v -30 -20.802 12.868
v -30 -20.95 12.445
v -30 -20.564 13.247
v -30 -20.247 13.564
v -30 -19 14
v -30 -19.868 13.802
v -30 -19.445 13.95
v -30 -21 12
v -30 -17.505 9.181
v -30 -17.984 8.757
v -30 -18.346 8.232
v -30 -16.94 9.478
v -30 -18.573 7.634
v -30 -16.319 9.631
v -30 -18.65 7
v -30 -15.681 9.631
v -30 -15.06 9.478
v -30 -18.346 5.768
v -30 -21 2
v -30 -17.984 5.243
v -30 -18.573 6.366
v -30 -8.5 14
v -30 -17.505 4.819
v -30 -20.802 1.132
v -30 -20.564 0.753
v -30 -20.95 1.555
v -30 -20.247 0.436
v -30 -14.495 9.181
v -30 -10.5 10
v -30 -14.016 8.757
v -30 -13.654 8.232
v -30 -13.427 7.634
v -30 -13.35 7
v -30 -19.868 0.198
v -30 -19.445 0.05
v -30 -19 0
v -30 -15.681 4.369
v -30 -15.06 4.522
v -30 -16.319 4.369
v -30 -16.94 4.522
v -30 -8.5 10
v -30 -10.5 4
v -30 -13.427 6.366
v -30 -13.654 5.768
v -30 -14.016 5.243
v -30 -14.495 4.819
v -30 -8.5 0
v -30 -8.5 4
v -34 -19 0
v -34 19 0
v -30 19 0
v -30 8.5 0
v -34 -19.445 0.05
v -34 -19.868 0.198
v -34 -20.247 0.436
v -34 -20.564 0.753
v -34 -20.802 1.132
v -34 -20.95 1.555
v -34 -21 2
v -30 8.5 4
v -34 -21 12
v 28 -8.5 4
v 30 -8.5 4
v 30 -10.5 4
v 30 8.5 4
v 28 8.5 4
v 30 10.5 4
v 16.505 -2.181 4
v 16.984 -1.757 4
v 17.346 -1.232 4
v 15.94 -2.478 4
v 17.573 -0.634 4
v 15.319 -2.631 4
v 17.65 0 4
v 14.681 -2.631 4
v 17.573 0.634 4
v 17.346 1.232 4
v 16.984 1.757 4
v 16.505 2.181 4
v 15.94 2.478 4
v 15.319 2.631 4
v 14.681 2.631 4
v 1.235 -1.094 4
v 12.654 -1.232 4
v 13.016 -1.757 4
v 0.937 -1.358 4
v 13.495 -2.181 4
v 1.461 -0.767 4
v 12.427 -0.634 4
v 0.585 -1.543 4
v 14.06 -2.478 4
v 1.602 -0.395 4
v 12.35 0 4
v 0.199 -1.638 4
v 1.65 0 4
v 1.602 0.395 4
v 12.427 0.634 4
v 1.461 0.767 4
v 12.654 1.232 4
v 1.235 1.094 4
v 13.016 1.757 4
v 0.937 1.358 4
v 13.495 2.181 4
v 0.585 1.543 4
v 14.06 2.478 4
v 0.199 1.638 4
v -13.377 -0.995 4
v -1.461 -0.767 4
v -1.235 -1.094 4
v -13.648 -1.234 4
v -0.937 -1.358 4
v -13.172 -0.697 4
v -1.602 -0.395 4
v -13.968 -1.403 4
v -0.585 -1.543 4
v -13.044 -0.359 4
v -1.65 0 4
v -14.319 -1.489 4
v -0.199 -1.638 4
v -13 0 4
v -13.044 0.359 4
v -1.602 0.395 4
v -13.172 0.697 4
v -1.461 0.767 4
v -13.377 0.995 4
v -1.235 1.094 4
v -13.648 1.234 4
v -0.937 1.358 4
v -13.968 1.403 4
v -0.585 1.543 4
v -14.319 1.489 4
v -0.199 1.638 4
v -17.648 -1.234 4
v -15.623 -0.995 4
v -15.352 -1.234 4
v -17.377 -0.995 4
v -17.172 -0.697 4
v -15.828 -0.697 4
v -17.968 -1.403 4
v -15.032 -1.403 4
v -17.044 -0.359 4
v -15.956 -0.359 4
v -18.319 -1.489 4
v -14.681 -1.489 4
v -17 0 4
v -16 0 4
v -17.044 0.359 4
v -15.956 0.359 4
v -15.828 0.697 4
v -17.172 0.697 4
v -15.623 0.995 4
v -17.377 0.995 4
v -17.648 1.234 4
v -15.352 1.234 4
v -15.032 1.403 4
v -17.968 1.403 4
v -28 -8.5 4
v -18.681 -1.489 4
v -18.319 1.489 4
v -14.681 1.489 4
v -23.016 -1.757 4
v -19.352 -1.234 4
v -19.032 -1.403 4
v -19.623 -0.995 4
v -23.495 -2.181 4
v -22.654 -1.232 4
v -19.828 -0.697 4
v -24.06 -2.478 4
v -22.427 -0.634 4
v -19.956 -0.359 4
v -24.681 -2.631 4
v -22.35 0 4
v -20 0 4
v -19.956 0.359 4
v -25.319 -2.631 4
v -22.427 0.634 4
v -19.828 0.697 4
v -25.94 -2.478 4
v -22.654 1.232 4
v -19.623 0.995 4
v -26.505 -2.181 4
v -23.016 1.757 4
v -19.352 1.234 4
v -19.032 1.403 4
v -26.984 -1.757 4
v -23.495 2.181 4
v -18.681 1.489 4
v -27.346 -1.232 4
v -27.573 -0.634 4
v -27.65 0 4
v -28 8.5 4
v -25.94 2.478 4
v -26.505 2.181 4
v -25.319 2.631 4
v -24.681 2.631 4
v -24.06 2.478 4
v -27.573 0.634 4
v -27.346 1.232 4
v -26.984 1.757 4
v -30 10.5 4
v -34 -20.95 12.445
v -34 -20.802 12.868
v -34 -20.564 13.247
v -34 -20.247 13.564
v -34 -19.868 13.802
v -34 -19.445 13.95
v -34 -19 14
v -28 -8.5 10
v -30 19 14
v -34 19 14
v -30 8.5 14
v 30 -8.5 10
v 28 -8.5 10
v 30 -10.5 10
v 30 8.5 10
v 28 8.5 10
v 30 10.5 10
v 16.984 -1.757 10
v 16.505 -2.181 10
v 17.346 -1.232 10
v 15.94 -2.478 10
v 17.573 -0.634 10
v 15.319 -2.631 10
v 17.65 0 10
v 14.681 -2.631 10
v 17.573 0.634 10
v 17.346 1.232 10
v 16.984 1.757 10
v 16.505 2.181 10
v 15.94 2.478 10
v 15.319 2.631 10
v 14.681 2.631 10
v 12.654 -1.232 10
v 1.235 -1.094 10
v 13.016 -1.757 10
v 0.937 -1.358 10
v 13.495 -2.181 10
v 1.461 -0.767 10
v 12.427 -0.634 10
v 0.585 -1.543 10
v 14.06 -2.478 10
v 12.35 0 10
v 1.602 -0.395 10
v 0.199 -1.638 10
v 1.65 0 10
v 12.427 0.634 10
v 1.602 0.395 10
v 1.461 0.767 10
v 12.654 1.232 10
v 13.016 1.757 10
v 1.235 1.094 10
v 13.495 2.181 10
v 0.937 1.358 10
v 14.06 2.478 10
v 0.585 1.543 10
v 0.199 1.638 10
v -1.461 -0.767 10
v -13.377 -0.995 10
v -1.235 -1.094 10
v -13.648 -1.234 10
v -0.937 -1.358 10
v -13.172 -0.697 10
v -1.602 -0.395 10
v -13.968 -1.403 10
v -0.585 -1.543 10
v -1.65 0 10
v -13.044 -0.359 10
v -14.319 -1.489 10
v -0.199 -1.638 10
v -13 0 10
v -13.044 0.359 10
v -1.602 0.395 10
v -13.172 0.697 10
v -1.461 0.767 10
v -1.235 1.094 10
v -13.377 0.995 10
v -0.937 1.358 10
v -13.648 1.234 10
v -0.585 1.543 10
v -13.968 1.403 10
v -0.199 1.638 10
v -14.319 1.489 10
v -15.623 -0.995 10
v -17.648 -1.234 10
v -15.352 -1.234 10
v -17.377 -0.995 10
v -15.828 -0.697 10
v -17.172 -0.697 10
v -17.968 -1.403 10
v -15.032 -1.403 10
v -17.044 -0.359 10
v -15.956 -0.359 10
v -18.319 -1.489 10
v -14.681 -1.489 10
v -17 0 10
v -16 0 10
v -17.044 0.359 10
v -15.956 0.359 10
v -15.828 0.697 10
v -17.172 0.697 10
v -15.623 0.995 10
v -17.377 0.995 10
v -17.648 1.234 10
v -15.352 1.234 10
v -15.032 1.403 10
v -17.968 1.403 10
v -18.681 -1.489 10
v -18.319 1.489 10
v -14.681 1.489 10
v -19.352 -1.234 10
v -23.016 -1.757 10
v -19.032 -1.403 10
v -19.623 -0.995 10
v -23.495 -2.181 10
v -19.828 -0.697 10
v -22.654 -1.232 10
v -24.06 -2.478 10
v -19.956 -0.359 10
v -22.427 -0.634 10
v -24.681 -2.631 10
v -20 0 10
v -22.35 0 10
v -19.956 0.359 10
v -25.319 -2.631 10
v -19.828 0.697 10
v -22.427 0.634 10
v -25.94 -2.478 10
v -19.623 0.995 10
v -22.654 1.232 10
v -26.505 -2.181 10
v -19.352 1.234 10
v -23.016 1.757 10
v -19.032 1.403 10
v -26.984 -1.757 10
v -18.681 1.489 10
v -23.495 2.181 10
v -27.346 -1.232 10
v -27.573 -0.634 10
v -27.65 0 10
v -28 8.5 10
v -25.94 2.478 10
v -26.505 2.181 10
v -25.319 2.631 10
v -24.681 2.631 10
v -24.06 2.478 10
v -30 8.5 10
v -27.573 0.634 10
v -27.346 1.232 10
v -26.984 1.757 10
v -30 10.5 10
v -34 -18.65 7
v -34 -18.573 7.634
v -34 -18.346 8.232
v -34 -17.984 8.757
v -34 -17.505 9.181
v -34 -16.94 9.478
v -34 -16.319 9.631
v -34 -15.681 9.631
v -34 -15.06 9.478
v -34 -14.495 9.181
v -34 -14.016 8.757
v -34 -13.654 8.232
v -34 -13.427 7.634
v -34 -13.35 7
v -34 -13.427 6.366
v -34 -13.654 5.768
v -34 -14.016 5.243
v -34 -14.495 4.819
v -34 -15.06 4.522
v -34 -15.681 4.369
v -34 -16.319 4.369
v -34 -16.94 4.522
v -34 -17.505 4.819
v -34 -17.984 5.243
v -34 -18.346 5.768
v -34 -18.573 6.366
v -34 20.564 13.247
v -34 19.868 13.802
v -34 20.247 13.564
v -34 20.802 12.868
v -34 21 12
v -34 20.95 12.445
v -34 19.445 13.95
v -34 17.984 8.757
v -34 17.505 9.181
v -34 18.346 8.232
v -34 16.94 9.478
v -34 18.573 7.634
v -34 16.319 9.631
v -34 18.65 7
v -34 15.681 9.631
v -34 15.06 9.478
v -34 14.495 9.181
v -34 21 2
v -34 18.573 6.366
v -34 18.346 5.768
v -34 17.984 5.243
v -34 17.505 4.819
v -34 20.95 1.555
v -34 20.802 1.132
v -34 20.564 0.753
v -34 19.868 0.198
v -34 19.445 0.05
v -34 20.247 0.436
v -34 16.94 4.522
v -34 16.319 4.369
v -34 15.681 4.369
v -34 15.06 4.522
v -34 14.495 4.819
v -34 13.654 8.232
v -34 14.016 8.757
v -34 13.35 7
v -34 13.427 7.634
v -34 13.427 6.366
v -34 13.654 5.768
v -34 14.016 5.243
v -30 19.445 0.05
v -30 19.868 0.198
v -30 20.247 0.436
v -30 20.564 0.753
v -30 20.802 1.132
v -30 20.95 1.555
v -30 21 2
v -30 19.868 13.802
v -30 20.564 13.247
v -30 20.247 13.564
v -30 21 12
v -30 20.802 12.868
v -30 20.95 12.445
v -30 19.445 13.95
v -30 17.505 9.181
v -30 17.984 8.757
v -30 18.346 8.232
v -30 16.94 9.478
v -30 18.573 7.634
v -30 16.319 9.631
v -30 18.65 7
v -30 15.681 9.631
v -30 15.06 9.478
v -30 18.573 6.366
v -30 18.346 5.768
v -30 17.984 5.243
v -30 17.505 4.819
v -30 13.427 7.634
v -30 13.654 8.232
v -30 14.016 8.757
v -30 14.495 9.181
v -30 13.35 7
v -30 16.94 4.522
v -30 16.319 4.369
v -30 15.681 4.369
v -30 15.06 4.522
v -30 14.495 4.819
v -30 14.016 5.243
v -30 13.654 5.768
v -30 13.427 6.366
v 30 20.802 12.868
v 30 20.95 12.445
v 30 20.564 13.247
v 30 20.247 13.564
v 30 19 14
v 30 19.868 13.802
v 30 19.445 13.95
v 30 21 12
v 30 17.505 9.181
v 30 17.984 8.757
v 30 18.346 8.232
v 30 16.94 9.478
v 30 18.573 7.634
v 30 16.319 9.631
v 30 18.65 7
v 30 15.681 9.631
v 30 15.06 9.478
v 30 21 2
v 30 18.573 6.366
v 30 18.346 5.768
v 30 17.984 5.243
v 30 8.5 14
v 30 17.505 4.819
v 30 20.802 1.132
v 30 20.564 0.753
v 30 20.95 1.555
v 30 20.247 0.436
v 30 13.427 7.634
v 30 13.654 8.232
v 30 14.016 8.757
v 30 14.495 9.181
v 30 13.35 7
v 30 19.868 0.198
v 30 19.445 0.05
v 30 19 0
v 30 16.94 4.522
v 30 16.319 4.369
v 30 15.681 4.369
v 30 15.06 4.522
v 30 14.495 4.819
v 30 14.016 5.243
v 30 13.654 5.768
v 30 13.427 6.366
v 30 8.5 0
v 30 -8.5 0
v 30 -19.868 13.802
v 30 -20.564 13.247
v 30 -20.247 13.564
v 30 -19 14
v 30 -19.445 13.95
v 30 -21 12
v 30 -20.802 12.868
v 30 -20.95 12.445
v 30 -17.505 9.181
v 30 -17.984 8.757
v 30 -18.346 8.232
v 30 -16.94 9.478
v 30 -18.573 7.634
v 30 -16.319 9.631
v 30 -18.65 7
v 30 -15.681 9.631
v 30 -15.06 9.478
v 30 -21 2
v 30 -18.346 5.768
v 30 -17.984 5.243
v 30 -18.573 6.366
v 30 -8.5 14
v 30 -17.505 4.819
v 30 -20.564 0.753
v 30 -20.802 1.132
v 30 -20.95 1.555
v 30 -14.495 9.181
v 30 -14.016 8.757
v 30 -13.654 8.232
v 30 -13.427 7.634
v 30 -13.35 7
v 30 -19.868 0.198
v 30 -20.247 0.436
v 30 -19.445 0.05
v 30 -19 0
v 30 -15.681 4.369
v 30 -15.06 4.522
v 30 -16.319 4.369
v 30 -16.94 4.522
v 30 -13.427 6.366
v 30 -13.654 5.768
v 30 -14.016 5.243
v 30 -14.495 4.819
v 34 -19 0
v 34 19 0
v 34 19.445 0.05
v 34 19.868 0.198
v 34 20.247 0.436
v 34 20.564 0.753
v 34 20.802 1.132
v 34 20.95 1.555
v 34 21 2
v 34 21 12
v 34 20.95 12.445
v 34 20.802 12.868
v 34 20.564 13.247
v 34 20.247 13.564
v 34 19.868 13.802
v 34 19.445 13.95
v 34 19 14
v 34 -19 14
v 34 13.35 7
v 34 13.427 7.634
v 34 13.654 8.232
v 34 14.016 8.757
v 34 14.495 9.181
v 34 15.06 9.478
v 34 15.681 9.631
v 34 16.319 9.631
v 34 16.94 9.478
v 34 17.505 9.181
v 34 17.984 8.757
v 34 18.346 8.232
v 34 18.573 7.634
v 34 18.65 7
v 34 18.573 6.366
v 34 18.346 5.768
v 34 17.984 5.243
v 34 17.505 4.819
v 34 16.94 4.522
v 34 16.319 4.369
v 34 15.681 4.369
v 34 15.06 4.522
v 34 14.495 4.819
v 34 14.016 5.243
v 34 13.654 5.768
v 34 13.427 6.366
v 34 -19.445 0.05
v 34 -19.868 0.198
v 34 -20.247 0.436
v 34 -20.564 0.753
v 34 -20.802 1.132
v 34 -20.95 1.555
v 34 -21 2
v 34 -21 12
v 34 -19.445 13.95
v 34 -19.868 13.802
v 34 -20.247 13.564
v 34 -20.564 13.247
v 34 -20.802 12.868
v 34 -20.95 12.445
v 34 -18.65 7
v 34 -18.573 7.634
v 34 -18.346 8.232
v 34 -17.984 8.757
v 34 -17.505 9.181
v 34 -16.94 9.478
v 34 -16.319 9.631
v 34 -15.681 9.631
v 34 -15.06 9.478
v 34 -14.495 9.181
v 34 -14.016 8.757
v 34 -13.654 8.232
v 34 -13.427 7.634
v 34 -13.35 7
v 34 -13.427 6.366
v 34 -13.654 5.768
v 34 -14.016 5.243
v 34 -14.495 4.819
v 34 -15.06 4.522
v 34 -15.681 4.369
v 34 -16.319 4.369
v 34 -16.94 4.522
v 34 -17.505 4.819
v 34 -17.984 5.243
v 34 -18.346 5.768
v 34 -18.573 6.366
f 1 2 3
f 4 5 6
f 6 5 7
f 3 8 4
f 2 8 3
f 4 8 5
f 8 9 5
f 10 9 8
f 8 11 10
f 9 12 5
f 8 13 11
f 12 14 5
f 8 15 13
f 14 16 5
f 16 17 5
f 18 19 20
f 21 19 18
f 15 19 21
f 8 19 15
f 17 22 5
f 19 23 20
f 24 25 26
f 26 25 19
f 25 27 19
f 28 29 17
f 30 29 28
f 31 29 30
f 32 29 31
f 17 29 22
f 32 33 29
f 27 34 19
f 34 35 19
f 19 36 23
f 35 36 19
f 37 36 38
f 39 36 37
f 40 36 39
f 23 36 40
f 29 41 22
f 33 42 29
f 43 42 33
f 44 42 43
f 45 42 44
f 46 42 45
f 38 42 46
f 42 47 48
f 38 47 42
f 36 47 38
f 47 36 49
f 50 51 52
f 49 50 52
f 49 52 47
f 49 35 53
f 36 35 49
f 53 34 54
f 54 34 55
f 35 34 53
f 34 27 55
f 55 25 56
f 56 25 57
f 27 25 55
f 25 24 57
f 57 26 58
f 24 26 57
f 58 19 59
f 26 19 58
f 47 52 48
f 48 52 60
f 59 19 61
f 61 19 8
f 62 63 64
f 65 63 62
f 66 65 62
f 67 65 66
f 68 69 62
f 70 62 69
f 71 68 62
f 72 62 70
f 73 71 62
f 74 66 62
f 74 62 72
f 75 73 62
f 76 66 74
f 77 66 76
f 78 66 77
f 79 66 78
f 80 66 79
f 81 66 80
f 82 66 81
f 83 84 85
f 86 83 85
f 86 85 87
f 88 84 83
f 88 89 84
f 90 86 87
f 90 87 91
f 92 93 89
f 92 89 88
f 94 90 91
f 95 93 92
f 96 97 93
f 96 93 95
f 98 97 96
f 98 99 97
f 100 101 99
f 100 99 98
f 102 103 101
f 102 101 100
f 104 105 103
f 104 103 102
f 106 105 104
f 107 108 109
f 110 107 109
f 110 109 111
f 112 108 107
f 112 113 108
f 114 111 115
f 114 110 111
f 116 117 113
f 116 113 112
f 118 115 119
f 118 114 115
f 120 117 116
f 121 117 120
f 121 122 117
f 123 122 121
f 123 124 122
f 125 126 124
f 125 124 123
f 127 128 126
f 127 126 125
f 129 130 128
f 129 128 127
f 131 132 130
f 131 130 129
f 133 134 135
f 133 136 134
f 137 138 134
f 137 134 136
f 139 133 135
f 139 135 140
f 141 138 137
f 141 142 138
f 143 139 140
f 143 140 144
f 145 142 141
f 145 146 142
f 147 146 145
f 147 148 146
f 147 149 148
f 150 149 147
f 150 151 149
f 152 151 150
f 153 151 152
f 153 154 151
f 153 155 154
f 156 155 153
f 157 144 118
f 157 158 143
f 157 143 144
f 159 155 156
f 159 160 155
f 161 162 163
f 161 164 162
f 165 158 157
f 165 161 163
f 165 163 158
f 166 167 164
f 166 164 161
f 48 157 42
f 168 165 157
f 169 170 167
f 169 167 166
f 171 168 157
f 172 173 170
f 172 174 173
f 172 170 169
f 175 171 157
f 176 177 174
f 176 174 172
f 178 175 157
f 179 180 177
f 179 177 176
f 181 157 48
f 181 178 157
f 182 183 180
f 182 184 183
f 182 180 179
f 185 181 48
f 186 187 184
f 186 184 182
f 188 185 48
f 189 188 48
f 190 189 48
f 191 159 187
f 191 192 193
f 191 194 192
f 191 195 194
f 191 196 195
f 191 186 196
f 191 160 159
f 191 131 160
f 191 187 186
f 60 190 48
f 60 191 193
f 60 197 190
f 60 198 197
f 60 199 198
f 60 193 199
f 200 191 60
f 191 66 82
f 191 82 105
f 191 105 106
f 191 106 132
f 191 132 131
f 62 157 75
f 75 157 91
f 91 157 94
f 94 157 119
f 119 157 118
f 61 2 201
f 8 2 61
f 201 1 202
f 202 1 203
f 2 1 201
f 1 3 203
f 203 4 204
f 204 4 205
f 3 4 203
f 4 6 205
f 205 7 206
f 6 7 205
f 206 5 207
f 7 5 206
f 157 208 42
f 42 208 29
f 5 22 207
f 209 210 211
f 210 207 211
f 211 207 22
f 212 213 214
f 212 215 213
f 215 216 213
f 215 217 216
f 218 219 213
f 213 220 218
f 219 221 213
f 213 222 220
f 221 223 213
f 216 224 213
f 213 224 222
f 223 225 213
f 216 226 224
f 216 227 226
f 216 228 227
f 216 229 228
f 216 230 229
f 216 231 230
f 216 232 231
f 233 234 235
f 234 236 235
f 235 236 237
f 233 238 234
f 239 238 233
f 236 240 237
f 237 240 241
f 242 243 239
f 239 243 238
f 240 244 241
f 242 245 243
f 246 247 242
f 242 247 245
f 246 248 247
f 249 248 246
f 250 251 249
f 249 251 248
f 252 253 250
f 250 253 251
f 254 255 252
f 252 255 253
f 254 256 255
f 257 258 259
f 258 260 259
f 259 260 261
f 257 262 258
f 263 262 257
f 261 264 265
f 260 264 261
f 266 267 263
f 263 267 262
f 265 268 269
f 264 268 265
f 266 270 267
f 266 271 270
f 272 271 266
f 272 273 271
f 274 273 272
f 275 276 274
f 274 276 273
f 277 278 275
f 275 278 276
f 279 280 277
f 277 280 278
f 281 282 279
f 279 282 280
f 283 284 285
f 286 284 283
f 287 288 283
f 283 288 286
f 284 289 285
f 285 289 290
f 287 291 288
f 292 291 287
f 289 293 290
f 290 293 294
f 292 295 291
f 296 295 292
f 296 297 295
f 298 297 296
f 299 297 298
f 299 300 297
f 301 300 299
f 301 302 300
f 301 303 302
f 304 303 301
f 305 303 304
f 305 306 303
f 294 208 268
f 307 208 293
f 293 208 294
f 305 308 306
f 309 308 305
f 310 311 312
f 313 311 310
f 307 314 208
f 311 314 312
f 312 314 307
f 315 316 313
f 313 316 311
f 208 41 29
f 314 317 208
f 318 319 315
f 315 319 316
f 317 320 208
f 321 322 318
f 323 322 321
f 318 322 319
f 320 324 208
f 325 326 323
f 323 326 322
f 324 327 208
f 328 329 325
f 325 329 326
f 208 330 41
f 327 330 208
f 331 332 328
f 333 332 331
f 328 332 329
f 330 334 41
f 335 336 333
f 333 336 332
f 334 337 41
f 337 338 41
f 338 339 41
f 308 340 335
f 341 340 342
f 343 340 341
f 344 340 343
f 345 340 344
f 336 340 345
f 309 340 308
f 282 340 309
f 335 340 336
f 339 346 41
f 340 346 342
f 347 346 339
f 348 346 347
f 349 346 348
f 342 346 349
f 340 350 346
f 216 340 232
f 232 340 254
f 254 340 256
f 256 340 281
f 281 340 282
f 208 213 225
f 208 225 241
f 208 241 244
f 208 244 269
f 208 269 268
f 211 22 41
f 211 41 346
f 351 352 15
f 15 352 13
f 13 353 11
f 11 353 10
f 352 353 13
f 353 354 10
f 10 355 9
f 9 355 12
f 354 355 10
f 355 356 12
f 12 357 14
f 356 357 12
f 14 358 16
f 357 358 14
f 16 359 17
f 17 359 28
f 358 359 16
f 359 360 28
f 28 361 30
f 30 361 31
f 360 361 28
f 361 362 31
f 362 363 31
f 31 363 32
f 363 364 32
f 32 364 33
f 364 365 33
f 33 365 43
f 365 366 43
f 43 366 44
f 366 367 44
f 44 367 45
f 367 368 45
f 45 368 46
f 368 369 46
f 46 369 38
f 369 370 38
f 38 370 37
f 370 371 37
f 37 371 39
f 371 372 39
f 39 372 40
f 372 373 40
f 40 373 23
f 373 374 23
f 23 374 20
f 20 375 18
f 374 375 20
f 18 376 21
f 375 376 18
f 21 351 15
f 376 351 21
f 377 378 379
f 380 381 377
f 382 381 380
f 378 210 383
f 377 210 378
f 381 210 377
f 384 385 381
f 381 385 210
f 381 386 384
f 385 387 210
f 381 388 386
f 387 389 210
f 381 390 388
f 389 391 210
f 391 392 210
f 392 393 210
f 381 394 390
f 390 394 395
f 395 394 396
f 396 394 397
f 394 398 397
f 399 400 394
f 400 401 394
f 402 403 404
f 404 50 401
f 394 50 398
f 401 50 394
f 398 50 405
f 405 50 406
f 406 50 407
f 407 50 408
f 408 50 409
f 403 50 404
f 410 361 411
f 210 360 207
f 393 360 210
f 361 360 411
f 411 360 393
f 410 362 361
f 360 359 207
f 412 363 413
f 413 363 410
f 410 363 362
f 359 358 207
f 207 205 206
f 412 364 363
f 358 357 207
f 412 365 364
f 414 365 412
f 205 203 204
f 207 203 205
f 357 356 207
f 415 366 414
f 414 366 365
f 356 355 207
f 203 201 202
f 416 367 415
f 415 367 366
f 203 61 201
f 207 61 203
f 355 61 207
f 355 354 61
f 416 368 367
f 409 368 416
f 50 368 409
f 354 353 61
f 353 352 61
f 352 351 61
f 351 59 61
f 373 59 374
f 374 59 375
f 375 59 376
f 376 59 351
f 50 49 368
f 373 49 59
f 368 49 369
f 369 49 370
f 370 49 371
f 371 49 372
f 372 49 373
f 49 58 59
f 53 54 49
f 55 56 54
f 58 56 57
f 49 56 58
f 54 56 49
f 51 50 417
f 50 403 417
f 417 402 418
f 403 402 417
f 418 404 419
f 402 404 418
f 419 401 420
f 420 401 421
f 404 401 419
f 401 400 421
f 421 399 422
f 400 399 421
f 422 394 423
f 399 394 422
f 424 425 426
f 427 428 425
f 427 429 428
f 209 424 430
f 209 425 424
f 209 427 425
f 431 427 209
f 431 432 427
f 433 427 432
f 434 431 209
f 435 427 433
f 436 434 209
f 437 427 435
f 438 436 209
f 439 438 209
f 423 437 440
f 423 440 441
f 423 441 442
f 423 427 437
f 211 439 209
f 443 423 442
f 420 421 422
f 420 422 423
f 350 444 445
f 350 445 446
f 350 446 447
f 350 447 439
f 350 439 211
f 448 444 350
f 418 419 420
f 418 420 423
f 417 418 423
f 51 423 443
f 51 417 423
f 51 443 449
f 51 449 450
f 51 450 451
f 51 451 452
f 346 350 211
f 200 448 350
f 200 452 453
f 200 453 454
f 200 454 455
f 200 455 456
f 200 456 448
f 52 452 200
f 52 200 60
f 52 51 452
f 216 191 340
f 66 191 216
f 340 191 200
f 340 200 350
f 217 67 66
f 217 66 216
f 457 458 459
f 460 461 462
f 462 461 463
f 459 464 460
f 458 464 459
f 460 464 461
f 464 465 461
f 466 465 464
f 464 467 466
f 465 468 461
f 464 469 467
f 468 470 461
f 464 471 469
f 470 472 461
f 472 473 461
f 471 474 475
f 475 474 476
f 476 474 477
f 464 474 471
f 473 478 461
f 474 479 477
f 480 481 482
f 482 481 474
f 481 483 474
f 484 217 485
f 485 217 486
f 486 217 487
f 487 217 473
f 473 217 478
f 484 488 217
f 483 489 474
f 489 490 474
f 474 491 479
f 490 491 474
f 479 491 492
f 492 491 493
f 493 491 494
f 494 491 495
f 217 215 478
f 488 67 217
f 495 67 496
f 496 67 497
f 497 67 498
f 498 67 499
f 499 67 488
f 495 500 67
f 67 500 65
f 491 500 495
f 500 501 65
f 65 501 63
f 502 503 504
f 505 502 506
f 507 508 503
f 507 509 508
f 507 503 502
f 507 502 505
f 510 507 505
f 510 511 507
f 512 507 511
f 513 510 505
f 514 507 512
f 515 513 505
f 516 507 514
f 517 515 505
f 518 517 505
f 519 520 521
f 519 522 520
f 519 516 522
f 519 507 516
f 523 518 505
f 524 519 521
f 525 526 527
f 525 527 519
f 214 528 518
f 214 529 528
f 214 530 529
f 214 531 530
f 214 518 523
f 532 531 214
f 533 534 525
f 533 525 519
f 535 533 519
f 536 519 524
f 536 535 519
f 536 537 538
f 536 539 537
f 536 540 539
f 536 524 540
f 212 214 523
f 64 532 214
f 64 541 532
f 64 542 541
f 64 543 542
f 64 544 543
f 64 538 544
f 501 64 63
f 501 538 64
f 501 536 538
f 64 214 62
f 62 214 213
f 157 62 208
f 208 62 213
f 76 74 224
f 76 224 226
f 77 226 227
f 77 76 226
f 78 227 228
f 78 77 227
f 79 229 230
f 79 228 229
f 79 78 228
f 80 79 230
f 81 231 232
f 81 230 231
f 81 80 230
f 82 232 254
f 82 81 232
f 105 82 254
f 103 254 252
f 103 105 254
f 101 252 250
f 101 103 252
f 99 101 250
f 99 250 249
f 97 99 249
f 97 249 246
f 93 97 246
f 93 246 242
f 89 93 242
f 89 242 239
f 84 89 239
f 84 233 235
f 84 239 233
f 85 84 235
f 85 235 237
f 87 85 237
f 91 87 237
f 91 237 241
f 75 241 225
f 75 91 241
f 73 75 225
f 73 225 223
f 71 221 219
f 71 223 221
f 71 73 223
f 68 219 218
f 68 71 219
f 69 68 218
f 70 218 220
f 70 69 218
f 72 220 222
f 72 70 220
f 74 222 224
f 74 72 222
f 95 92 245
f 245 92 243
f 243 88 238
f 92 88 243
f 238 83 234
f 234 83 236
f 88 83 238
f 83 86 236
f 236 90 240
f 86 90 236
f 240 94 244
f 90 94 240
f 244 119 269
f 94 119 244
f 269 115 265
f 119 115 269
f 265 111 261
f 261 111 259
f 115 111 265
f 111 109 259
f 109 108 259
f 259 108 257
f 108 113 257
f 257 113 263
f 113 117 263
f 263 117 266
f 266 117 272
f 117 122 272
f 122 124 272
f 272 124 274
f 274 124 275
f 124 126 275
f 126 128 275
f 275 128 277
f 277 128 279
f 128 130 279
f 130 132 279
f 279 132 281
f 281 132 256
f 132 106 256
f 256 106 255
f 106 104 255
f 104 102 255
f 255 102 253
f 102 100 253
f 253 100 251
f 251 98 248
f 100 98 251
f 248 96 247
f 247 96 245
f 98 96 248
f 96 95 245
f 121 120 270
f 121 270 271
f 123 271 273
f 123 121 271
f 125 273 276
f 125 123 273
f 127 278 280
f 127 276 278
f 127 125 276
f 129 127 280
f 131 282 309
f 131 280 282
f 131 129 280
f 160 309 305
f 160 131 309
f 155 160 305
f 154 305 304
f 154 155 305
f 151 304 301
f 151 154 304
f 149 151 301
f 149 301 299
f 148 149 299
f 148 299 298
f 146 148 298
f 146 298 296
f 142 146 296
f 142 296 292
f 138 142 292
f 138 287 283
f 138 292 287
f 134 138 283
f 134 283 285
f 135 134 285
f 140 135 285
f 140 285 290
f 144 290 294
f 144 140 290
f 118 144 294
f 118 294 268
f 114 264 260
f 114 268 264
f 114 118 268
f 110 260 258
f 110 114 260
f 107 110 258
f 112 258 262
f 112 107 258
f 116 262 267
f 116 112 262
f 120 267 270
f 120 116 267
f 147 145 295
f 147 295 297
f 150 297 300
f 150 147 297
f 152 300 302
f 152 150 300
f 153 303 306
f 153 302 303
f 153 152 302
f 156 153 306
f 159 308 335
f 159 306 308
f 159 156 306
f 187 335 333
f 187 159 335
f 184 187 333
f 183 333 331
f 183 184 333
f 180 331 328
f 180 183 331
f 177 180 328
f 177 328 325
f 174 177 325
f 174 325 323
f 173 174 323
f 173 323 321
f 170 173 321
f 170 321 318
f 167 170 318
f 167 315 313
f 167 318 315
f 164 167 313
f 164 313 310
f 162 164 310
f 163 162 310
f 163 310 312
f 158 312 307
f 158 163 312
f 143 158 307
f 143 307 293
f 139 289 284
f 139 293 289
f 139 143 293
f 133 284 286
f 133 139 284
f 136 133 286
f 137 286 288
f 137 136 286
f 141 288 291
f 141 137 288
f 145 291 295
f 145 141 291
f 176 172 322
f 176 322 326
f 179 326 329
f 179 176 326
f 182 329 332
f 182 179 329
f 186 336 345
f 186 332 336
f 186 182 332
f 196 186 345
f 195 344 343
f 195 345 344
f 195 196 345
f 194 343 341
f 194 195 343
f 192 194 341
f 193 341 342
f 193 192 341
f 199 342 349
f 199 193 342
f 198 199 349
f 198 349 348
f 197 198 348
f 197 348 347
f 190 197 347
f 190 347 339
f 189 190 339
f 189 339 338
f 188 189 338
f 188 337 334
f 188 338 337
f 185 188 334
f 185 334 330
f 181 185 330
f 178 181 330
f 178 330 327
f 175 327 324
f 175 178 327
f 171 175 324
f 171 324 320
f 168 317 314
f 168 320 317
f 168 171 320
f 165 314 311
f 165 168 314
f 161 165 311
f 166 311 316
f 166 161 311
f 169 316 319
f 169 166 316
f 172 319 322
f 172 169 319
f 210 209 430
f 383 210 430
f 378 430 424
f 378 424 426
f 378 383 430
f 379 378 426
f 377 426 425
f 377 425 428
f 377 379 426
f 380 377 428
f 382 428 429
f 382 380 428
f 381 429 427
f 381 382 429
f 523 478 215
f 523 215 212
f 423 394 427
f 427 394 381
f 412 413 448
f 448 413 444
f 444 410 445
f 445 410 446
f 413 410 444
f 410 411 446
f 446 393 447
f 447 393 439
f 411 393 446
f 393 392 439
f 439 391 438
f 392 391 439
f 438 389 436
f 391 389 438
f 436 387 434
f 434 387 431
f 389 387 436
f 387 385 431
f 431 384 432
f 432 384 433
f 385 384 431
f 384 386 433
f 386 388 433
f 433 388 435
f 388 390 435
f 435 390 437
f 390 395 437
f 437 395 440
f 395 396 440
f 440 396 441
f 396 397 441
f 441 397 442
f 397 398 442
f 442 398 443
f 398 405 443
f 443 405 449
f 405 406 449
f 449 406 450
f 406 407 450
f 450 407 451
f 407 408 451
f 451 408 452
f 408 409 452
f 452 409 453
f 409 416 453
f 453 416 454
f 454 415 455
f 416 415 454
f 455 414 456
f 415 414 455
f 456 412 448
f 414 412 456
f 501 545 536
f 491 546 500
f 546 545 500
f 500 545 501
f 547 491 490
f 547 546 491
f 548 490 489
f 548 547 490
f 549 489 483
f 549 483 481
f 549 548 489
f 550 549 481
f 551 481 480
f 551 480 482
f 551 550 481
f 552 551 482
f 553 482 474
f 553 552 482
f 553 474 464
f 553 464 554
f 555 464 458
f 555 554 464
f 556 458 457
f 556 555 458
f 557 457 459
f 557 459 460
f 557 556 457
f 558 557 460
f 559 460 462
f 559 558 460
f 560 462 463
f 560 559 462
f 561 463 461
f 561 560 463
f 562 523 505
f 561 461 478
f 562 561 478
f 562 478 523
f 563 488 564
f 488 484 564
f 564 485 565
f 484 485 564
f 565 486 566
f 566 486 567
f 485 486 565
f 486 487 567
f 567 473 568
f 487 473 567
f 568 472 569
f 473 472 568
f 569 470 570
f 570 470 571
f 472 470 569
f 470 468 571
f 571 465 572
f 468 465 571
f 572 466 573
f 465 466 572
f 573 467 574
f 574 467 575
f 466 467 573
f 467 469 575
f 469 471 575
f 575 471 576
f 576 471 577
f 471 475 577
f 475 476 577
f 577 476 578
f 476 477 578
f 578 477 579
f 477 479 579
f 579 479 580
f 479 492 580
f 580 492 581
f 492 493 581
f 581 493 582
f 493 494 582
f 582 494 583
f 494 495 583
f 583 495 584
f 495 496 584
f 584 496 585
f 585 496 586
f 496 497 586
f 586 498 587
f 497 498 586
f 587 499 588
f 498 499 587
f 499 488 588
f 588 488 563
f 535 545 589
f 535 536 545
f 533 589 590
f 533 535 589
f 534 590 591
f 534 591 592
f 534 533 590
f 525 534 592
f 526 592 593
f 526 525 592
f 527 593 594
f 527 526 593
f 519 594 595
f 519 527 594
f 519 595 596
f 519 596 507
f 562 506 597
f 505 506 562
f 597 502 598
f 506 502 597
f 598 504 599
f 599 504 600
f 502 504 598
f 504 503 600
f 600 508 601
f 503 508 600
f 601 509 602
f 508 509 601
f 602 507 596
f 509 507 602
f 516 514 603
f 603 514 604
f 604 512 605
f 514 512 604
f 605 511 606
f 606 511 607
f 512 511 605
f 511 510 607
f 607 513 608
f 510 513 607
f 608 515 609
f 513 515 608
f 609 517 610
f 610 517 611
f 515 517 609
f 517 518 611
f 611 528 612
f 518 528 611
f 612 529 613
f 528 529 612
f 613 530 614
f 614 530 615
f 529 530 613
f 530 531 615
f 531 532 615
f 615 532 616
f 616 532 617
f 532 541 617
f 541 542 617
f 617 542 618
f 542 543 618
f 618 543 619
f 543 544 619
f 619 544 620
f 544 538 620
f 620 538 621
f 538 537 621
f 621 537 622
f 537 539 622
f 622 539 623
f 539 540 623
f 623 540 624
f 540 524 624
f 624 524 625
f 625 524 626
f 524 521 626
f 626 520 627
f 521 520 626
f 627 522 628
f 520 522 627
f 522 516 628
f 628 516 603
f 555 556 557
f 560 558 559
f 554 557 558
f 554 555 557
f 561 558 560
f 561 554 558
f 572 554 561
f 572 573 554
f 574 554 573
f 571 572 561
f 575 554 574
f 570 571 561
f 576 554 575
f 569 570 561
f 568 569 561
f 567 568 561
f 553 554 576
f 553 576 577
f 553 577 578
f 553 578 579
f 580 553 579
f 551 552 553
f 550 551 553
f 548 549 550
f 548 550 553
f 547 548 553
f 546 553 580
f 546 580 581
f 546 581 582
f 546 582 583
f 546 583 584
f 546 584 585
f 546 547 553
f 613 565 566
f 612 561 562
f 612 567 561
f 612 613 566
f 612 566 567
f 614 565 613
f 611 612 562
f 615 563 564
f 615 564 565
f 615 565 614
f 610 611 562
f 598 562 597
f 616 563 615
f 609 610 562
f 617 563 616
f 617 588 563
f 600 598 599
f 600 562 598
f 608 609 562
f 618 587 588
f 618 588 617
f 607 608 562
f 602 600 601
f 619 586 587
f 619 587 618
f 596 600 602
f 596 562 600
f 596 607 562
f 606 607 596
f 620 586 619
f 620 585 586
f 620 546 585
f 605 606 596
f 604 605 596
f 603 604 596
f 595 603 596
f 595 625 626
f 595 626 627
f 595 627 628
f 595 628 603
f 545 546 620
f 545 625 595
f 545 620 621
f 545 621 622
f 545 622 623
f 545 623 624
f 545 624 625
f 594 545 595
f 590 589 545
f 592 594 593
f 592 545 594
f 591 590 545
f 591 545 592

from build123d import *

# Parameters (mm, degrees)
SKETCH001_R     = 1.5
SKETCH001_R_2   = 2.65
PAD_DEPTH       = 14
SKETCH_R        = 2.65
POCKET_DEPTH    = 68.001
SKETCH002_W     = 60
SKETCH002_H     = 17
POCKET001_DEPTH = 4
SKETCH003_W     = 60
SKETCH003_H     = 17
POCKET002_DEPTH = 4
CHAMFER_SIZE    = 2
FILLET_R        = 2
FILLET001_R     = 2
SKETCH004_R     = 1.65
POCKET003_DEPTH = 10.001


with BuildPart() as part:
    # Sketch001 → Pad (new body)
    with BuildSketch(Plane.XY):
        Polygon((30, 21), (34, 21), (34, -21), (30, -21), (30, -8.5), (-30, -8.5), (-30, -21), (-34, -21), (-34, 21), (-30, 21), (-30, 8.5), (30, 8.5), align=None)
        with Locations((-14.5, 0)):
            Circle(SKETCH001_R, mode=Mode.SUBTRACT)
        with Locations((-18.5, 0)):
            Circle(SKETCH001_R, mode=Mode.SUBTRACT)
        with Locations((-25, 0)):
            Circle(SKETCH001_R_2, mode=Mode.SUBTRACT)
        with Locations((15, 0)):
            Circle(SKETCH001_R_2, mode=Mode.SUBTRACT)
    extrude(amount=PAD_DEPTH)

    # Sketch (on Face11 of Pad) → Pocket (cut, through all)
    with BuildSketch(Plane(origin=(-34, 0, 0), x_dir=(0, -1, 0), z_dir=(-1, 0, 0))):
        with Locations((-16, 7)):
            Circle(SKETCH_R)
        with Locations((16, 7)):
            Circle(SKETCH_R)
    extrude(amount=-POCKET_DEPTH, mode=Mode.SUBTRACT)

    # Sketch002 (on Face4 of Pocket) → Pocket001 (cut)
    with BuildSketch(Plane.XY.offset(14)):
        Rectangle(SKETCH002_W, SKETCH002_H)
    extrude(amount=-POCKET001_DEPTH, mode=Mode.SUBTRACT)

    # Sketch003 (on Face4 of Pocket) → Pocket002 (cut)
    with BuildSketch(Plane.XY):
        Rectangle(SKETCH003_W, SKETCH003_H)
    extrude(amount=POCKET002_DEPTH, mode=Mode.SUBTRACT)

    # Chamfer
    chamfer_edges = [part.edges().sort_by_distance(p)[0] for p in [
        (-30, 8.5, 7),
        (30, 8.5, 7),
        (30, -8.5, 7),
        (-30, -8.5, 7),
    ]]
    chamfer(chamfer_edges, length=CHAMFER_SIZE)

    # Fillet
    fillet_edges = [part.edges().sort_by_distance(p)[0] for p in [
        (32, -21, 14),
        (32, -21, 0),
        (32, 21, 14),
        (32, 21, 0),
    ]]
    fillet(fillet_edges, radius=FILLET_R)

    # Fillet001
    fillet001_edges = [part.edges().sort_by_distance(p)[0] for p in [
        (-32, 21, 14),
        (-32, 21, 0),
        (-32, -21, 14),
        (-32, -21, 0),
    ]]
    fillet(fillet001_edges, radius=FILLET001_R)

    # Sketch004 (on Face6 of Fillet001) → Pocket003 (cut, through all)
    with BuildSketch(Plane(origin=(0, 0, 4), x_dir=(1, 0, 0), z_dir=(0, 0, -1))):
        Circle(SKETCH004_R)
    extrude(amount=-POCKET003_DEPTH, mode=Mode.SUBTRACT)


solid = part.part
